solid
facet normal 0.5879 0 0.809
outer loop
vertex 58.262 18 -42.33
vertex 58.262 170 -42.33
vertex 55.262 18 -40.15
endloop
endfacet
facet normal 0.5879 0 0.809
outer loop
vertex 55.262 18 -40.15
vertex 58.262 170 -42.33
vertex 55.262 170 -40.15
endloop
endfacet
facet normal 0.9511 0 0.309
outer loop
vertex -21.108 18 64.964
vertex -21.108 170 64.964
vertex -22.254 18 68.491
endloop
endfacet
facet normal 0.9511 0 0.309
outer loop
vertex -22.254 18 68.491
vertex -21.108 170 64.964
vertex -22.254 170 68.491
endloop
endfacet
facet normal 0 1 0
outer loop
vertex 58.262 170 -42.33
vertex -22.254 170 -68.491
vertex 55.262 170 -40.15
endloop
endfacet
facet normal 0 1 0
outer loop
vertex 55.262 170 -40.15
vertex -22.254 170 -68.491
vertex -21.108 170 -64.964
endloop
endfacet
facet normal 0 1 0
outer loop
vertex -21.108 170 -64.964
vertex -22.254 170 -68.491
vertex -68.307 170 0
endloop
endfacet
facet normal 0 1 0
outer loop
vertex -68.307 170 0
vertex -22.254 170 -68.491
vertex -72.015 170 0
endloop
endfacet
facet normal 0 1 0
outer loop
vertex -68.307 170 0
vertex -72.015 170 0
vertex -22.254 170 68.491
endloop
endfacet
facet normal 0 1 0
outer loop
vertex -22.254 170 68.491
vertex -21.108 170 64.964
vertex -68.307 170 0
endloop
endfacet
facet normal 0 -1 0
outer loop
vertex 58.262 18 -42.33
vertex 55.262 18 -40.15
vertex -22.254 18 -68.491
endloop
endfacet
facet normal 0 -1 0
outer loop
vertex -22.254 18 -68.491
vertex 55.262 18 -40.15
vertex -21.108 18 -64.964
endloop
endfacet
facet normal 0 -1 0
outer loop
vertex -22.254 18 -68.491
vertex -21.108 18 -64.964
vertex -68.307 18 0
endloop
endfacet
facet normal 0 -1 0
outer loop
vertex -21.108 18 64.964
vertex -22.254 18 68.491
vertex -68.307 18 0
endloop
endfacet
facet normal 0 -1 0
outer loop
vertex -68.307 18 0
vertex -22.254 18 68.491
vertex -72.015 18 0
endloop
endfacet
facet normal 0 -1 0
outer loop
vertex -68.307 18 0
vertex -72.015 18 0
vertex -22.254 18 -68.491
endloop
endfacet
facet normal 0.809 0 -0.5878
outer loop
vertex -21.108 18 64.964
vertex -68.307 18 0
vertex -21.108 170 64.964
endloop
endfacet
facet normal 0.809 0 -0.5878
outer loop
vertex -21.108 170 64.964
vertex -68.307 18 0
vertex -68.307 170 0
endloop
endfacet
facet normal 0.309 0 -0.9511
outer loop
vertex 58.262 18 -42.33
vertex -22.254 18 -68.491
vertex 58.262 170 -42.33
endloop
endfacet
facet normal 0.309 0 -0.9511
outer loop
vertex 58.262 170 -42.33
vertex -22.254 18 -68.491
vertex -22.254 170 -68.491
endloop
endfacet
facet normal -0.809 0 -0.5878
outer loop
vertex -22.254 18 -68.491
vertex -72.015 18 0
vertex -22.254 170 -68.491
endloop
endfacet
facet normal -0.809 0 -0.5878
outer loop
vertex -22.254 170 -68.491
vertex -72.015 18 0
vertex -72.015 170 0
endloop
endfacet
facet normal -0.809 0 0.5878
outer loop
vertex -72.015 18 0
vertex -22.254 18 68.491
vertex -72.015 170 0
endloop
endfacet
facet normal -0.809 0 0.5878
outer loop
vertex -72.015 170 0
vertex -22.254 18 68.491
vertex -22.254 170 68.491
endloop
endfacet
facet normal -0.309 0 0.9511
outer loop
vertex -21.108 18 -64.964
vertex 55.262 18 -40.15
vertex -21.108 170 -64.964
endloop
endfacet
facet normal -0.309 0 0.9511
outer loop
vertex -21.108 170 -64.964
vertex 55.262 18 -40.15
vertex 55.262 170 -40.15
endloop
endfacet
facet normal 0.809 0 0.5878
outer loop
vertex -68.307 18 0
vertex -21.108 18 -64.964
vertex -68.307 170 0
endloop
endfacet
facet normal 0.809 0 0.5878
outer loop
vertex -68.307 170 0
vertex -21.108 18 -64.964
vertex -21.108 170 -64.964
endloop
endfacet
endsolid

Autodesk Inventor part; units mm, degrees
sketch "草图1" plane through (0, 0, 0) normal (0, 1, 0) x (-1, 0, 0)
  line L0 (82.5131, 0) -> (25.498, -78.4746)
  line L1 (25.498, -78.4746) -> (-66.7545, -48.5)
  line L2 (-66.7545, -48.5) -> (-66.7545, 48.5)
  line L3 (-66.7545, 48.5) -> (25.498, 78.4746)
  line L4 (25.498, 78.4746) -> (82.5131, 0)
  point P0 (0, 0)
  point P1 (0, 0)
  dimension "d0" = 97
ref_plane "工作平面1" through (0, 170, 0) normal (0, 1, 0) x (-1, 0, 0)
sketch "草图2" plane through (0, 170, 0) normal (0, 1, 0) x (-1, 0, 0)
  line L0 (105.0554, 0) -> (32.4639, -99.9136)
  line L1 (32.4639, -99.9136) -> (-84.9916, -61.75)
  line L2 (-84.9916, -61.75) -> (-84.9916, 61.75)
  line L3 (-84.9916, 61.75) -> (32.4639, 99.9136)
  line L4 (32.4639, 99.9136) -> (105.0554, 0)
  point P0 (0, 0)
  point P1 (0, 0)
  dimension "d2" = 123.5
loft "放样1" add profiles "草图2", "草图1"
sketch "草图3" plane through (84.9916, 170, 61.75) normal (0, 1, 0) x (1, 0, 0)
  line L0 (-153.2988, 61.75) -> (-106.0997, 126.7141)
  line L1 (-106.0997, 126.7141) -> (-29.7298, 101.9)
  line L2 (-29.7298, 101.9) -> (-29.7298, 21.6)
  line L3 (-29.7298, 21.6) -> (-106.0997, -3.2141)
  line L4 (-106.0997, -3.2141) -> (-153.2988, 61.75)
  point P0 (-84.9916, 61.75)
  point P1 (-84.9916, 61.75)
  dimension "d7" = 80.3
extrude "拉伸1" cut sketch "草图3" against normal blind 164
shell "抽壳1" thickness 3 removed faces 1 at (10.4732, 170, -75.5426)
sketch "草图5" plane through (66.7545, 0, -48.5) normal (0, -1, 0) x (1, 0, 0)
  line L0 (-98.0659, 144.8667) -> (-91.2229, 123.806) projected
  line L1 (-106.5917, 71.5) -> (-123.9122, 81.5)
  line L2 (-107.7408, 69.3836) -> (-125.561, 78.4634)
  arc A0 (-106.5917, 71.5) -> (-107.7408, 69.3836) centre (-66.7545, 48.5) ccw
  arc A1 (-123.9122, 81.5) -> (-125.561, 78.4634) centre (-66.7545, 48.5) ccw
  point P0 (-99.2814, 81.0269)
  dimension "d37" = 132
  dimension "d38" = 92
  dimension "d40" = 3
extrude "拉伸2" add sketch "草图5" along normal blind 3
sketch "草图7" plane through (66.7545, -3, -48.5) normal (0, -1, 0) x (1, 0, 0)
  arc A0 (-100.9392, 79.28) -> (-106.5917, 71.5) centre (-66.7545, 48.5) ccw
  arc A1 (-115.8021, 92.6626) -> (-125.561, 78.4634) centre (-66.7545, 48.5) ccw
  arc A2 (-100.9392, 79.28) -> (-107.7408, 69.3836) centre (-66.7545, 48.5) ccw
  line L0 (-100.9392, 79.28) -> (-115.8021, 92.6626)
  line L1 (-125.561, 78.4634) -> (-107.7408, 69.3836) projected
  line L2 (-107.7408, 69.3836) -> (-125.561, 78.4634)
  dimension "d25" = 92
  dimension "d41" = 15
extrude "拉伸3" add sketch "草图7" along normal blind 3
chamfer "倒角1" distance 1 angle 45 1 edges at (-41.6161, -3, 37.4713)
sketch "草图8" plane through (66.7545, 0, -48.5) normal (0, -1, 0) x (1, 0, 0)
  circle A0 centre (-66.7545, 48.5) radius 15
  dimension "d100" = 30
extrude "拉伸4" add sketch "草图8" along normal blind 30
pattern_circular "环形阵列1" count 10 over 360 about axis through (0, -10, 0) along (0, 1, 0) of "拉伸3", "拉伸2", "倒角1"
sketch "草图9" plane through (64.0591, 3, 46.5417) normal (0, 1, 0) x (1, 0, 0)
  line L0 (-132.3664, 46.5417) -> (-85.1672, 111.5058) projected
  line L1 (-85.1672, -18.4224) -> (-132.3664, 46.5417) projected
  line L2 (-8.7974, 6.3917) -> (-85.1672, -18.4224) projected
  line L3 (-8.7974, 86.6917) -> (-8.7974, 6.3917) projected
  line L4 (-85.1672, 111.5058) -> (-8.7974, 86.6917) projected
  line L5 (-136.0746, 46.5417) -> (-86.3131, -21.9491) projected
  line L6 (-86.3131, -21.9491) -> (-5.7974, 4.2121) projected
  line L7 (-5.7974, 4.2121) -> (-5.7974, 88.8713) projected
  line L8 (-5.7974, 88.8713) -> (-86.3131, 115.0325) projected
  line L9 (-86.3131, 115.0325) -> (-136.0746, 46.5417) projected
  line L10 (-85.1672, -18.4224) -> (-132.3664, 46.5417) projected
  line L11 (-132.3664, 46.5417) -> (-85.1672, 111.5058) projected
  line L12 (-85.1672, 111.5058) -> (-8.7974, 86.6917) projected
  line L13 (-8.7974, 86.6917) -> (-8.7974, 6.3917) projected
  line L14 (-8.7974, 6.3917) -> (-85.1672, -18.4224) projected
  line L15 (-143.2406, 46.5417) -> (-88.5276, 121.8477) projected
  line L16 (-88.5276, -28.7643) -> (-143.2406, 46.5417) projected
  line L17 (0, 0) -> (-88.5276, -28.7643) projected
  line L18 (0, 93.0834) -> (0, 0) projected
  line L19 (-88.5276, 121.8477) -> (0, 93.0834) projected
  line L20 (-145.4076, 46.5417) -> (-89.1972, 123.9087)
  line L21 (-89.1972, 123.9087) -> (1.7532, 94.3571)
  line L22 (1.7532, 94.3571) -> (1.7532, -1.2738)
  line L23 (1.7532, -1.2738) -> (-89.1972, -30.8253)
  line L24 (-89.1972, -30.8253) -> (-145.4076, 46.5417)
  point P0 (-64.0591, 46.5417)
extrude "拉伸5" add sketch "草图9" along normal blind 15 contours L15 L19 L18 L17 L16 | L20 L21 L22 L23 L24
sketch "草图10" plane through (84.9916, 6, 61.75) normal (0, 1, 0) x (1, 0, 0)
  line L0 (-153.2988, 61.75) -> (-106.0997, 126.7141) projected
  line L1 (-106.0997, -3.2141) -> (-153.2988, 61.75) projected
  line L2 (-29.7298, 21.6) -> (-106.0997, -3.2141) projected
  line L3 (-29.7298, 101.9) -> (-29.7298, 21.6) projected
  line L4 (-106.0997, 126.7141) -> (-29.7298, 101.9) projected
  line L5 (-107.2456, 130.2408) -> (-157.007, 61.75) projected
  line L6 (-26.7298, 104.0796) -> (-107.2456, 130.2408) projected
  line L7 (-26.7298, 19.4204) -> (-26.7298, 104.0796) projected
  line L8 (-107.2456, -6.7408) -> (-26.7298, 19.4204) projected
  line L9 (-157.007, 61.75) -> (-107.2456, -6.7408) projected
  line L10 (-166.1621, 61.75) -> (-110.0746, 138.9477) projected
  line L11 (-110.0746, -15.4477) -> (-166.1621, 61.75) projected
  line L12 (-19.3233, 14.0392) -> (-110.0746, -15.4477) projected
  line L13 (-19.3233, 109.4608) -> (-19.3233, 14.0392) projected
  line L14 (-110.0746, 138.9477) -> (-19.3233, 109.4608) projected
  point P0 (-84.9916, 61.75)
sketch "草图11" plane through (64.0591, 18, 46.5417) normal (0, 1, 0) x (1, 0, 0)
  line L0 (-64.0591, 46.5417) -> (2.6954, 46.5417) construction
  line L1 (-86.3131, 115.0325) -> (-136.0746, 46.5417) projected
  line L2 (-5.7974, 88.8713) -> (-86.3131, 115.0325) projected
  line L3 (-5.7974, 4.2121) -> (-5.7974, 88.8713) projected
  line L4 (-86.3131, -21.9491) -> (-5.7974, 4.2121) projected
  line L5 (-136.0746, 46.5417) -> (-86.3131, -21.9491) projected
  line L6 (-145.2296, 46.5417) -> (-89.1422, 123.7394) projected
  line L7 (-89.1422, -30.656) -> (-145.2296, 46.5417) projected
  line L8 (1.6092, -1.1691) -> (-89.1422, -30.656) projected
  line L9 (1.6092, 94.2525) -> (1.6092, -1.1691) projected
  line L10 (-89.1422, 123.7394) -> (1.6092, 94.2525) projected
  circle A0 centre (-2.0908, 11.2121) radius 1.25
  line L11 (-5.7974, 4.2121) -> (1.6092, -1.1691) construction
  line L12 (-5.7974, 4.2121) -> (-5.7974, 88.8713) projected
  line L13 (-86.3131, -21.9491) -> (-5.7974, 4.2121) projected
  line L14 (1.6092, -1.1691) -> (-89.1422, -30.656) projected
  line L15 (1.6092, 94.2525) -> (1.6092, -1.1691) projected
  circle A1 centre (-11.3094, -1.4762) radius 1.25
  line L16 (-2.0941, 7.5215) -> (-0.5941, 7.5215)
  line L17 (-0.5941, 7.5215) -> (-0.5941, 0.4317)
  line L18 (-2.0941, 7.5215) -> (-3.5941, 7.5215)
  line L19 (-3.5941, 7.5215) -> (-3.5941, 2.6113)
  line L20 (-7.8005, -0.3326) -> (-7.3369, -1.7592)
  line L21 (-7.3369, -1.7592) -> (-0.5941, 0.4317)
  line L22 (-7.8005, -0.3326) -> (-8.264, 1.094)
  line L23 (-8.264, 1.094) -> (-3.5941, 2.6113)
  dimension "d63" = 2.5
  dimension "d69" = 3.7
  dimension "d131" = 3.6906
extrude "拉伸7" cut sketch "草图11" against normal blind 3 contours A0 | A1 | L16 L17 L21 L20 L22 L23 L19 L18
extrude "拉伸8" add sketch "草图10" along normal blind 10 and the other way blind 3 contours L10 L14 L13 L12 L11
extrude "拉伸9" cut sketch "草图10" along normal blind 10 and the other way blind 3 contours L10 L14 L13 L12 L11
ref_plane "工作平面2" through (84.9916, 7, 61.75) normal (0, 1, 0) x (1, 0, 0)
sketch "草图12" plane through (84.9916, 7, 61.75) normal (0, 1, 0) x (1, 0, 0)
  line L0 (-107.2456, -6.7408) -> (-26.7298, 19.4204) projected
  line L1 (-60.7054, 8.3811) -> (-61.6324, 11.2342)
  line L2 (-29.7298, 21.6) -> (-106.0997, -3.2141) projected
  line L3 (-89.8404, 2.0689) -> (-88.9133, -0.7843)
  line L4 (-107.2456, -6.7408) -> (-26.7298, 19.4204) projected
  line L5 (-29.7298, 21.6) -> (-106.0997, -3.2141) projected
  line L6 (-63.5345, 10.6162) -> (-62.6075, 7.763)
  line L7 (-65.4366, 9.9982) -> (-64.5096, 7.145)
  line L8 (-67.3388, 9.3801) -> (-66.4117, 6.527)
  line L9 (-69.2409, 8.7621) -> (-68.3138, 5.9089)
  line L10 (-71.143, 8.1441) -> (-70.2159, 5.2909)
  line L11 (-73.0451, 7.526) -> (-72.118, 4.6729)
  line L12 (-74.9472, 6.908) -> (-74.0202, 4.0548)
  line L13 (-76.7905, 6.3091) -> (-75.7638, 3.4883)
  line L14 (-84.134, 3.923) -> (-83.207, 1.0698)
  line L15 (-86.0362, 3.305) -> (-85.1091, 0.4518)
  line L16 (-87.9383, 2.6869) -> (-87.0112, -0.1662)
  line L17 (-80.3298, 5.1591) -> (-79.4028, 2.3059)
  line L18 (-82.2319, 4.541) -> (-81.3049, 1.6879)
  line L19 (-78.4277, 5.7771) -> (-77.5006, 2.9239)
  line L20 (-61.6324, 11.2342) -> (-63.5345, 10.6162)
  line L21 (-62.6075, 7.763) -> (-60.7054, 8.3811)
  line L22 (-66.4117, 6.527) -> (-64.5096, 7.145)
  line L23 (-65.4366, 9.9982) -> (-67.3388, 9.3801)
  line L24 (-70.2159, 5.2909) -> (-68.3138, 5.9089)
  line L25 (-69.2409, 8.7621) -> (-71.143, 8.1441)
  line L26 (-74.0202, 4.0548) -> (-72.118, 4.6729)
  line L27 (-73.0451, 7.526) -> (-74.9472, 6.908)
  line L28 (-76.7905, 6.3091) -> (-78.4277, 5.7771)
  line L29 (-77.5006, 2.9239) -> (-75.7638, 3.4883)
  line L30 (-81.3049, 1.6879) -> (-79.4028, 2.3059)
  line L31 (-80.3298, 5.1591) -> (-82.2319, 4.541)
  line L32 (-84.134, 3.923) -> (-86.0362, 3.305)
  line L33 (-87.9383, 2.6869) -> (-89.8404, 2.0689)
  line L34 (-88.9133, -0.7843) -> (-87.0112, -0.1662)
  line L35 (-85.1091, 0.4518) -> (-83.207, 1.0698)
  line L36 (-58.8033, 8.9991) -> (-59.7303, 11.8523)
  line L37 (-56.9011, 9.6171) -> (-57.8282, 12.4703)
  line L38 (-54.999, 10.2352) -> (-55.9261, 13.0883)
  line L39 (-53.0969, 10.8532) -> (-54.024, 13.7064)
  point P0 (-84.9916, 61.75)
  dimension "d73" = 2
  dimension "d74" = 2
  dimension "d75" = 2
  dimension "d76" = 2
  dimension "d77" = 2
  dimension "d78" = 2
  dimension "d79" = 2
  dimension "d80" = 2
  dimension "d81" = 2
  dimension "d82" = 2
  dimension "d83" = 2
  dimension "d84" = 2
  dimension "d85" = 2
  dimension "d86" = 2
  dimension "d88" = 2
  dimension "d89" = 2
  dimension "d90" = 2
  dimension "d91" = 2
extrude "拉伸10" cut sketch "草图12" along normal blind 7 contours L3 L2 L16 L0 | L15 L2 L14 L0 | L18 L2 L17 L0 | L19 L2 L13 L0 | L12 L2 L11 L0 | L10 L2 L9 L0 | L8 L2 L7 L0 | L6 L2 L1 L0 | L36 L2 L37 L0 | L38 L2 L39 L0
pattern_circular "环形阵列2" count 5 over 360 about axis through (0, 0, 0) along (0, -1, 0) of "拉伸10"
sketch "草图13" plane through (66.7545, 0, -48.5) normal (0, -1, 0) x (1, 0, 0)
  line L0 (1.9326, 98.4258) -> (-1.1068, 96.2175) construction
  line L1 (18.2371, 110.25) -> (0, 97) construction
  line L2 (-16.2555, 104.3138) -> (1.9326, 98.4258)
  line L3 (1.9326, 98.4258) -> (1.9326, 79.28)
  line L4 (-14.6399, 100.6147) -> (-1.1068, 96.2175)
  line L5 (-1.0862, 96.2108) -> (-1.0862, 81.9597)
  line L6 (-1.0862, 81.9597) -> (1.9326, 79.28)
  line L7 (-14.6399, 100.6147) -> (-16.2555, 104.3138)
  line L8 (1.9326, 98.4258) -> (1.9326, 79.28)
  line L9 (1.9326, 79.28) -> (-1.0862, 81.9597)
  line L10 (-1.0862, 0.7892) -> (-1.0862, 96.2108) projected
  line L11 (-1.0862, 81.9597) -> (-1.0862, 96.2108)
  line L12 (-1.0862, 96.2108) -> (-14.6399, 100.6147)
  line L13 (-91.8376, 125.6977) -> (-1.0862, 96.2108) projected
  line L14 (0, 97) -> (-92.2525, 126.9746) projected
  line L15 (-14.6399, 100.6147) -> (-16.2555, 104.3138)
  line L16 (-16.2555, 104.3138) -> (1.9326, 98.4258)
  point P0 (-66.7545, 48.5)
  point P1 (18.2371, 110.25)
extrude "拉伸11" cut sketch "草图13" against normal blind 16
sketch "草图14" plane through (0, -30, 0) normal (0, -1, 0) x (1, 0, 0)
  line L0 (11.4602, -0.9019) -> (-11.5398, -0.9019)
  line L1 (-11.5398, -0.9019) -> (-11.5398, 0.7981)
  line L2 (-11.5398, 0.7981) -> (11.4602, 0.7981)
  line L3 (11.4602, 0.7981) -> (11.4602, -0.9019)
  line L4 (15.9292, -0.0519) -> (-16.622, -0.0519) construction
  line L5 (-0.0398, 4.6584) -> (-0.0398, -5.7431) construction
  point P0 (0, 0)
  dimension "d94" = 23
  dimension "d95" = 1.7
extrude "拉伸12" cut sketch "草图14" along normal blind 10 and the other way blind 54.75
sketch "草图15" plane through (0, -30, 0) normal (0, -1, 0) x (1, 0, 0)
  line L0 (11.4602, 0.7981) -> (-11.5398, 0.7981) projected
  line L1 (9.9602, 0.7981) -> (-10.0398, 0.7981)
  line L2 (-10.0398, 0.7981) -> (-10.0398, 2.5981)
  line L3 (-10.0398, 2.5981) -> (9.9602, 2.5981)
  line L4 (9.9602, 2.5981) -> (9.9602, 0.7981)
  line L5 (11.4602, -0.9019) -> (-11.5398, -0.9019) projected
  line L6 (-0.0398, 30.3943) -> (-0.0398, -31.216) construction
  point P0 (0, 0)
  dimension "d101" = 3.5
  dimension "d102" = 20
extrude "拉伸13" cut sketch "草图15" against normal blind 30
sketch "草图16" plane through (0, -30, 0) normal (0, -1, 0) x (1, 0, 0)
  line L0 (11.4602, 0.7981) -> (-11.5398, 0.7981) projected
  line L1 (-5.5398, 0.7981) -> (5.4602, 0.7981)
  line L2 (5.4602, 0.7981) -> (5.4602, 6.5981)
  line L3 (5.4602, 6.5981) -> (-5.5398, 6.5981)
  line L4 (-5.5398, 6.5981) -> (-5.5398, 0.7981)
  line L5 (11.4602, -0.9019) -> (-11.5398, -0.9019) projected
  line L6 (-0.0398, 25.7819) -> (-0.0398, -22.2478) construction
  point P0 (0, 0)
  dimension "d105" = 7.5
  dimension "d106" = 11
extrude "拉伸14" cut sketch "草图16" against normal blind 6
ref_plane "工作平面3" through (0, -28, 0) normal (0, -1, 0) x (1, 0, 0)
sketch "草图18" plane through (0, -28, 0) normal (0, -1, 0) x (1, 0, 0)
  line L0 (5.4602, 6.5981) -> (5.4602, 2.5981) projected
  line L1 (5.4602, 2.5981) -> (9.9602, 2.5981) projected
  line L2 (9.9602, 2.5981) -> (9.9602, 0.7981) projected
  line L3 (9.9602, 0.7981) -> (11.4602, 0.7981) projected
  line L4 (11.4602, 0.7981) -> (11.4602, -0.9019) projected
  line L5 (11.4602, -0.9019) -> (-11.5398, -0.9019) projected
  line L6 (-11.5398, -0.9019) -> (-11.5398, 0.7981) projected
  line L7 (-11.5398, 0.7981) -> (-10.0398, 0.7981) projected
  line L8 (-10.0398, 0.7981) -> (-10.0398, 2.5981) projected
  line L9 (-10.0398, 2.5981) -> (-5.5398, 2.5981) projected
  line L10 (-5.5398, 2.5981) -> (-5.5398, 6.5981) projected
  line L11 (-5.5398, 6.5981) -> (5.4602, 6.5981) projected
  circle A0 centre (0, 0) radius 15 projected
  line L12 (-12.5398, -1.9019) -> (12.4602, -1.9019)
  line L13 (12.4602, -1.9019) -> (12.4602, 1.7981)
  line L14 (12.4602, 1.7981) -> (10.9602, 1.7981)
  line L15 (10.9602, 1.7981) -> (10.9602, 3.5981)
  line L16 (10.9602, 3.5981) -> (6.4602, 3.5981)
  line L17 (6.4602, 3.5981) -> (6.4602, 7.5981)
  line L18 (6.4602, 7.5981) -> (-6.5398, 7.5981)
  line L19 (-6.5398, 7.5981) -> (-6.5398, 3.5981)
  line L20 (-6.5398, 3.5981) -> (-11.0398, 3.5981)
  line L21 (-11.0398, 3.5981) -> (-11.0398, 1.7981)
  line L22 (-11.0398, 1.7981) -> (-12.5398, 1.7981)
  line L23 (-12.5398, 1.7981) -> (-12.5398, -1.9019)
  circle A1 centre (0, 0) radius 14
  point P0 (0, 0)
  dimension "d110" = 1
  dimension "d111" = 1
extrude "拉伸15" cut sketch "草图18" against normal blind 30 contours A1
sketch "草图19" plane through (66.7545, 0, -48.5) normal (0, -1, 0) x (1, 0, 0)
  line L0 (-60.2943, 56.0981) -> (-73.2943, 56.0981) projected
  line L1 (-73.2943, 52.0981) -> (-77.7943, 52.0981) projected
  line L2 (-60.2943, 56.0981) -> (-73.2943, 56.0981)
  line L3 (-73.2943, 56.0981) -> (-73.2943, 52.0981)
  line L4 (-73.2943, 52.0981) -> (-60.2943, 52.0981)
  line L5 (-60.2943, 52.0981) -> (-60.2943, 56.0981)
  point P0 (-66.7545, 48.5)
extrude "拉伸16" cut sketch "草图19" along normal blind 22 and the other way blind 2
sketch "草图21" plane through (0, -30, 0) normal (0, -1, 0) x (1, 0, 0)
  line L0 (5.4602, 6.5981) -> (5.4602, 2.5981) projected
  line L1 (5.4602, 2.5981) -> (9.9602, 2.5981) projected
  line L2 (9.9602, 2.5981) -> (9.9602, 0.7981) projected
  line L3 (9.9602, 0.7981) -> (11.4602, 0.7981) projected
  line L4 (11.4602, 0.7981) -> (11.4602, -0.9019) projected
  line L5 (11.4602, -0.9019) -> (-11.5398, -0.9019) projected
  line L6 (-11.5398, -0.9019) -> (-11.5398, 0.7981) projected
  line L7 (-11.5398, 0.7981) -> (-10.0398, 0.7981) projected
  line L8 (-10.0398, 0.7981) -> (-10.0398, 2.5981) projected
  line L9 (-10.0398, 2.5981) -> (-5.5398, 2.5981) projected
  line L10 (-5.5398, 2.5981) -> (-5.5398, 6.5981) projected
  line L11 (-5.5398, 6.5981) -> (5.4602, 6.5981) projected
  circle A0 centre (0, 0) radius 15 projected
  point P0 (0, 0)
extrude "拉伸17" add sketch "草图21" along normal blind 3
sketch "草图22" plane through (5.4602, -24, 6.5981) normal (0, 0, -1) x (-1, 0, 0)
  line L0 (9.1141, -4) -> (1.9525, -4)
  line L1 (1.9525, -4) -> (9.1141, -4)
  line L2 (9.1141, -4) -> (9.1141, -9.2971)
  line L3 (9.1141, -9.2971) -> (1.9525, -9.2971)
  line L4 (1.9525, -9.2971) -> (1.9525, -4)
  point P0 (5.4602, 24)
extrude "拉伸18" cut sketch "草图22" against normal blind 10
sketch "草图23" plane through (0, -33, 0) normal (0, -1, 0) x (1, 0, 0)
  line L0 (5.555, -0.8779) -> (-5.9531, -0.8779)
  line L1 (-5.9531, -0.8779) -> (-5.9531, -3.3779)
  line L2 (-5.9531, -3.3779) -> (5.555, -3.3779)
  line L3 (5.555, -3.3779) -> (5.555, -0.8779)
  point P0 (0, 0)
  dimension "d125" = 2.5
extrude "拉伸19" cut sketch "草图23" against normal blind 10
sketch "草图24" plane through (64.0591, 18, 46.5417) normal (0, 1, 0) x (1, 0, 0)
  line L0 (-5.7974, 4.2121) -> (-5.7974, 88.8713) projected
  circle A0 centre (-64.0591, 46.5417) radius 14 projected
  line L1 (-75.5989, 45.7436) -> (-75.5989, 47.4436) projected
  line L2 (-75.5989, 47.4436) -> (-52.5989, 47.4436) projected
  line L3 (-52.5989, 47.4436) -> (-52.5989, 45.7436) projected
  line L4 (-52.5989, 45.7436) -> (-75.5989, 45.7436) projected
  line L5 (-132.3664, 46.5417) -> (-85.1672, 111.5058) projected
  line L6 (-85.1672, -18.4224) -> (-132.3664, 46.5417) projected
  line L7 (-8.7974, 6.3917) -> (-85.1672, -18.4224) projected
  line L8 (-8.7974, 86.6917) -> (-8.7974, 6.3917) projected
  line L9 (-85.1672, 111.5058) -> (-8.7974, 86.6917) projected
  line L10 (-87.2718, 117.9831) -> (-139.177, 46.5417)
  line L11 (-139.177, 46.5417) -> (-87.2718, -24.8997)
  line L12 (-87.2718, -24.8997) -> (-3.2875, 2.3885)
  line L13 (-3.2875, 2.3885) -> (-3.2875, 90.6949)
  line L14 (-3.2875, 90.6949) -> (-87.2718, 117.9831)
  point P0 (-64.0591, 46.5417)
extrude "拉伸20" cut sketch "草图24" along normal blind 300 contours L5 L9 L8 L7 L6 | L14 L13 L12 L11 L10 keep common part
sketch "草图25" plane through (58.2617, 170, 42.3296) normal (0, 1, 0) x (1, 0, 0)
  line L0 (-80.5157, -26.1611) -> (0, 0) projected
  line L1 (-58.2617, 42.3296) -> (-80.5157, -26.1611)
  line L2 (-80.5157, -26.1611) -> (-182.834, -34.6121)
  line L3 (-182.834, -34.6121) -> (-113.7838, 144.0731)
  line L4 (-113.7838, 144.0731) -> (26.5714, 112.7891)
  line L5 (0, 84.6593) -> (-80.5157, 110.8204) projected
  line L6 (26.5714, 112.7891) -> (0, 84.6593)
  line L7 (0, 84.6593) -> (-58.2617, 42.3296)
extrude "拉伸21" cut sketch "草图25" against normal blind 200 keep common part
properties part number "花盆主体" material "尼龙 6/6"
